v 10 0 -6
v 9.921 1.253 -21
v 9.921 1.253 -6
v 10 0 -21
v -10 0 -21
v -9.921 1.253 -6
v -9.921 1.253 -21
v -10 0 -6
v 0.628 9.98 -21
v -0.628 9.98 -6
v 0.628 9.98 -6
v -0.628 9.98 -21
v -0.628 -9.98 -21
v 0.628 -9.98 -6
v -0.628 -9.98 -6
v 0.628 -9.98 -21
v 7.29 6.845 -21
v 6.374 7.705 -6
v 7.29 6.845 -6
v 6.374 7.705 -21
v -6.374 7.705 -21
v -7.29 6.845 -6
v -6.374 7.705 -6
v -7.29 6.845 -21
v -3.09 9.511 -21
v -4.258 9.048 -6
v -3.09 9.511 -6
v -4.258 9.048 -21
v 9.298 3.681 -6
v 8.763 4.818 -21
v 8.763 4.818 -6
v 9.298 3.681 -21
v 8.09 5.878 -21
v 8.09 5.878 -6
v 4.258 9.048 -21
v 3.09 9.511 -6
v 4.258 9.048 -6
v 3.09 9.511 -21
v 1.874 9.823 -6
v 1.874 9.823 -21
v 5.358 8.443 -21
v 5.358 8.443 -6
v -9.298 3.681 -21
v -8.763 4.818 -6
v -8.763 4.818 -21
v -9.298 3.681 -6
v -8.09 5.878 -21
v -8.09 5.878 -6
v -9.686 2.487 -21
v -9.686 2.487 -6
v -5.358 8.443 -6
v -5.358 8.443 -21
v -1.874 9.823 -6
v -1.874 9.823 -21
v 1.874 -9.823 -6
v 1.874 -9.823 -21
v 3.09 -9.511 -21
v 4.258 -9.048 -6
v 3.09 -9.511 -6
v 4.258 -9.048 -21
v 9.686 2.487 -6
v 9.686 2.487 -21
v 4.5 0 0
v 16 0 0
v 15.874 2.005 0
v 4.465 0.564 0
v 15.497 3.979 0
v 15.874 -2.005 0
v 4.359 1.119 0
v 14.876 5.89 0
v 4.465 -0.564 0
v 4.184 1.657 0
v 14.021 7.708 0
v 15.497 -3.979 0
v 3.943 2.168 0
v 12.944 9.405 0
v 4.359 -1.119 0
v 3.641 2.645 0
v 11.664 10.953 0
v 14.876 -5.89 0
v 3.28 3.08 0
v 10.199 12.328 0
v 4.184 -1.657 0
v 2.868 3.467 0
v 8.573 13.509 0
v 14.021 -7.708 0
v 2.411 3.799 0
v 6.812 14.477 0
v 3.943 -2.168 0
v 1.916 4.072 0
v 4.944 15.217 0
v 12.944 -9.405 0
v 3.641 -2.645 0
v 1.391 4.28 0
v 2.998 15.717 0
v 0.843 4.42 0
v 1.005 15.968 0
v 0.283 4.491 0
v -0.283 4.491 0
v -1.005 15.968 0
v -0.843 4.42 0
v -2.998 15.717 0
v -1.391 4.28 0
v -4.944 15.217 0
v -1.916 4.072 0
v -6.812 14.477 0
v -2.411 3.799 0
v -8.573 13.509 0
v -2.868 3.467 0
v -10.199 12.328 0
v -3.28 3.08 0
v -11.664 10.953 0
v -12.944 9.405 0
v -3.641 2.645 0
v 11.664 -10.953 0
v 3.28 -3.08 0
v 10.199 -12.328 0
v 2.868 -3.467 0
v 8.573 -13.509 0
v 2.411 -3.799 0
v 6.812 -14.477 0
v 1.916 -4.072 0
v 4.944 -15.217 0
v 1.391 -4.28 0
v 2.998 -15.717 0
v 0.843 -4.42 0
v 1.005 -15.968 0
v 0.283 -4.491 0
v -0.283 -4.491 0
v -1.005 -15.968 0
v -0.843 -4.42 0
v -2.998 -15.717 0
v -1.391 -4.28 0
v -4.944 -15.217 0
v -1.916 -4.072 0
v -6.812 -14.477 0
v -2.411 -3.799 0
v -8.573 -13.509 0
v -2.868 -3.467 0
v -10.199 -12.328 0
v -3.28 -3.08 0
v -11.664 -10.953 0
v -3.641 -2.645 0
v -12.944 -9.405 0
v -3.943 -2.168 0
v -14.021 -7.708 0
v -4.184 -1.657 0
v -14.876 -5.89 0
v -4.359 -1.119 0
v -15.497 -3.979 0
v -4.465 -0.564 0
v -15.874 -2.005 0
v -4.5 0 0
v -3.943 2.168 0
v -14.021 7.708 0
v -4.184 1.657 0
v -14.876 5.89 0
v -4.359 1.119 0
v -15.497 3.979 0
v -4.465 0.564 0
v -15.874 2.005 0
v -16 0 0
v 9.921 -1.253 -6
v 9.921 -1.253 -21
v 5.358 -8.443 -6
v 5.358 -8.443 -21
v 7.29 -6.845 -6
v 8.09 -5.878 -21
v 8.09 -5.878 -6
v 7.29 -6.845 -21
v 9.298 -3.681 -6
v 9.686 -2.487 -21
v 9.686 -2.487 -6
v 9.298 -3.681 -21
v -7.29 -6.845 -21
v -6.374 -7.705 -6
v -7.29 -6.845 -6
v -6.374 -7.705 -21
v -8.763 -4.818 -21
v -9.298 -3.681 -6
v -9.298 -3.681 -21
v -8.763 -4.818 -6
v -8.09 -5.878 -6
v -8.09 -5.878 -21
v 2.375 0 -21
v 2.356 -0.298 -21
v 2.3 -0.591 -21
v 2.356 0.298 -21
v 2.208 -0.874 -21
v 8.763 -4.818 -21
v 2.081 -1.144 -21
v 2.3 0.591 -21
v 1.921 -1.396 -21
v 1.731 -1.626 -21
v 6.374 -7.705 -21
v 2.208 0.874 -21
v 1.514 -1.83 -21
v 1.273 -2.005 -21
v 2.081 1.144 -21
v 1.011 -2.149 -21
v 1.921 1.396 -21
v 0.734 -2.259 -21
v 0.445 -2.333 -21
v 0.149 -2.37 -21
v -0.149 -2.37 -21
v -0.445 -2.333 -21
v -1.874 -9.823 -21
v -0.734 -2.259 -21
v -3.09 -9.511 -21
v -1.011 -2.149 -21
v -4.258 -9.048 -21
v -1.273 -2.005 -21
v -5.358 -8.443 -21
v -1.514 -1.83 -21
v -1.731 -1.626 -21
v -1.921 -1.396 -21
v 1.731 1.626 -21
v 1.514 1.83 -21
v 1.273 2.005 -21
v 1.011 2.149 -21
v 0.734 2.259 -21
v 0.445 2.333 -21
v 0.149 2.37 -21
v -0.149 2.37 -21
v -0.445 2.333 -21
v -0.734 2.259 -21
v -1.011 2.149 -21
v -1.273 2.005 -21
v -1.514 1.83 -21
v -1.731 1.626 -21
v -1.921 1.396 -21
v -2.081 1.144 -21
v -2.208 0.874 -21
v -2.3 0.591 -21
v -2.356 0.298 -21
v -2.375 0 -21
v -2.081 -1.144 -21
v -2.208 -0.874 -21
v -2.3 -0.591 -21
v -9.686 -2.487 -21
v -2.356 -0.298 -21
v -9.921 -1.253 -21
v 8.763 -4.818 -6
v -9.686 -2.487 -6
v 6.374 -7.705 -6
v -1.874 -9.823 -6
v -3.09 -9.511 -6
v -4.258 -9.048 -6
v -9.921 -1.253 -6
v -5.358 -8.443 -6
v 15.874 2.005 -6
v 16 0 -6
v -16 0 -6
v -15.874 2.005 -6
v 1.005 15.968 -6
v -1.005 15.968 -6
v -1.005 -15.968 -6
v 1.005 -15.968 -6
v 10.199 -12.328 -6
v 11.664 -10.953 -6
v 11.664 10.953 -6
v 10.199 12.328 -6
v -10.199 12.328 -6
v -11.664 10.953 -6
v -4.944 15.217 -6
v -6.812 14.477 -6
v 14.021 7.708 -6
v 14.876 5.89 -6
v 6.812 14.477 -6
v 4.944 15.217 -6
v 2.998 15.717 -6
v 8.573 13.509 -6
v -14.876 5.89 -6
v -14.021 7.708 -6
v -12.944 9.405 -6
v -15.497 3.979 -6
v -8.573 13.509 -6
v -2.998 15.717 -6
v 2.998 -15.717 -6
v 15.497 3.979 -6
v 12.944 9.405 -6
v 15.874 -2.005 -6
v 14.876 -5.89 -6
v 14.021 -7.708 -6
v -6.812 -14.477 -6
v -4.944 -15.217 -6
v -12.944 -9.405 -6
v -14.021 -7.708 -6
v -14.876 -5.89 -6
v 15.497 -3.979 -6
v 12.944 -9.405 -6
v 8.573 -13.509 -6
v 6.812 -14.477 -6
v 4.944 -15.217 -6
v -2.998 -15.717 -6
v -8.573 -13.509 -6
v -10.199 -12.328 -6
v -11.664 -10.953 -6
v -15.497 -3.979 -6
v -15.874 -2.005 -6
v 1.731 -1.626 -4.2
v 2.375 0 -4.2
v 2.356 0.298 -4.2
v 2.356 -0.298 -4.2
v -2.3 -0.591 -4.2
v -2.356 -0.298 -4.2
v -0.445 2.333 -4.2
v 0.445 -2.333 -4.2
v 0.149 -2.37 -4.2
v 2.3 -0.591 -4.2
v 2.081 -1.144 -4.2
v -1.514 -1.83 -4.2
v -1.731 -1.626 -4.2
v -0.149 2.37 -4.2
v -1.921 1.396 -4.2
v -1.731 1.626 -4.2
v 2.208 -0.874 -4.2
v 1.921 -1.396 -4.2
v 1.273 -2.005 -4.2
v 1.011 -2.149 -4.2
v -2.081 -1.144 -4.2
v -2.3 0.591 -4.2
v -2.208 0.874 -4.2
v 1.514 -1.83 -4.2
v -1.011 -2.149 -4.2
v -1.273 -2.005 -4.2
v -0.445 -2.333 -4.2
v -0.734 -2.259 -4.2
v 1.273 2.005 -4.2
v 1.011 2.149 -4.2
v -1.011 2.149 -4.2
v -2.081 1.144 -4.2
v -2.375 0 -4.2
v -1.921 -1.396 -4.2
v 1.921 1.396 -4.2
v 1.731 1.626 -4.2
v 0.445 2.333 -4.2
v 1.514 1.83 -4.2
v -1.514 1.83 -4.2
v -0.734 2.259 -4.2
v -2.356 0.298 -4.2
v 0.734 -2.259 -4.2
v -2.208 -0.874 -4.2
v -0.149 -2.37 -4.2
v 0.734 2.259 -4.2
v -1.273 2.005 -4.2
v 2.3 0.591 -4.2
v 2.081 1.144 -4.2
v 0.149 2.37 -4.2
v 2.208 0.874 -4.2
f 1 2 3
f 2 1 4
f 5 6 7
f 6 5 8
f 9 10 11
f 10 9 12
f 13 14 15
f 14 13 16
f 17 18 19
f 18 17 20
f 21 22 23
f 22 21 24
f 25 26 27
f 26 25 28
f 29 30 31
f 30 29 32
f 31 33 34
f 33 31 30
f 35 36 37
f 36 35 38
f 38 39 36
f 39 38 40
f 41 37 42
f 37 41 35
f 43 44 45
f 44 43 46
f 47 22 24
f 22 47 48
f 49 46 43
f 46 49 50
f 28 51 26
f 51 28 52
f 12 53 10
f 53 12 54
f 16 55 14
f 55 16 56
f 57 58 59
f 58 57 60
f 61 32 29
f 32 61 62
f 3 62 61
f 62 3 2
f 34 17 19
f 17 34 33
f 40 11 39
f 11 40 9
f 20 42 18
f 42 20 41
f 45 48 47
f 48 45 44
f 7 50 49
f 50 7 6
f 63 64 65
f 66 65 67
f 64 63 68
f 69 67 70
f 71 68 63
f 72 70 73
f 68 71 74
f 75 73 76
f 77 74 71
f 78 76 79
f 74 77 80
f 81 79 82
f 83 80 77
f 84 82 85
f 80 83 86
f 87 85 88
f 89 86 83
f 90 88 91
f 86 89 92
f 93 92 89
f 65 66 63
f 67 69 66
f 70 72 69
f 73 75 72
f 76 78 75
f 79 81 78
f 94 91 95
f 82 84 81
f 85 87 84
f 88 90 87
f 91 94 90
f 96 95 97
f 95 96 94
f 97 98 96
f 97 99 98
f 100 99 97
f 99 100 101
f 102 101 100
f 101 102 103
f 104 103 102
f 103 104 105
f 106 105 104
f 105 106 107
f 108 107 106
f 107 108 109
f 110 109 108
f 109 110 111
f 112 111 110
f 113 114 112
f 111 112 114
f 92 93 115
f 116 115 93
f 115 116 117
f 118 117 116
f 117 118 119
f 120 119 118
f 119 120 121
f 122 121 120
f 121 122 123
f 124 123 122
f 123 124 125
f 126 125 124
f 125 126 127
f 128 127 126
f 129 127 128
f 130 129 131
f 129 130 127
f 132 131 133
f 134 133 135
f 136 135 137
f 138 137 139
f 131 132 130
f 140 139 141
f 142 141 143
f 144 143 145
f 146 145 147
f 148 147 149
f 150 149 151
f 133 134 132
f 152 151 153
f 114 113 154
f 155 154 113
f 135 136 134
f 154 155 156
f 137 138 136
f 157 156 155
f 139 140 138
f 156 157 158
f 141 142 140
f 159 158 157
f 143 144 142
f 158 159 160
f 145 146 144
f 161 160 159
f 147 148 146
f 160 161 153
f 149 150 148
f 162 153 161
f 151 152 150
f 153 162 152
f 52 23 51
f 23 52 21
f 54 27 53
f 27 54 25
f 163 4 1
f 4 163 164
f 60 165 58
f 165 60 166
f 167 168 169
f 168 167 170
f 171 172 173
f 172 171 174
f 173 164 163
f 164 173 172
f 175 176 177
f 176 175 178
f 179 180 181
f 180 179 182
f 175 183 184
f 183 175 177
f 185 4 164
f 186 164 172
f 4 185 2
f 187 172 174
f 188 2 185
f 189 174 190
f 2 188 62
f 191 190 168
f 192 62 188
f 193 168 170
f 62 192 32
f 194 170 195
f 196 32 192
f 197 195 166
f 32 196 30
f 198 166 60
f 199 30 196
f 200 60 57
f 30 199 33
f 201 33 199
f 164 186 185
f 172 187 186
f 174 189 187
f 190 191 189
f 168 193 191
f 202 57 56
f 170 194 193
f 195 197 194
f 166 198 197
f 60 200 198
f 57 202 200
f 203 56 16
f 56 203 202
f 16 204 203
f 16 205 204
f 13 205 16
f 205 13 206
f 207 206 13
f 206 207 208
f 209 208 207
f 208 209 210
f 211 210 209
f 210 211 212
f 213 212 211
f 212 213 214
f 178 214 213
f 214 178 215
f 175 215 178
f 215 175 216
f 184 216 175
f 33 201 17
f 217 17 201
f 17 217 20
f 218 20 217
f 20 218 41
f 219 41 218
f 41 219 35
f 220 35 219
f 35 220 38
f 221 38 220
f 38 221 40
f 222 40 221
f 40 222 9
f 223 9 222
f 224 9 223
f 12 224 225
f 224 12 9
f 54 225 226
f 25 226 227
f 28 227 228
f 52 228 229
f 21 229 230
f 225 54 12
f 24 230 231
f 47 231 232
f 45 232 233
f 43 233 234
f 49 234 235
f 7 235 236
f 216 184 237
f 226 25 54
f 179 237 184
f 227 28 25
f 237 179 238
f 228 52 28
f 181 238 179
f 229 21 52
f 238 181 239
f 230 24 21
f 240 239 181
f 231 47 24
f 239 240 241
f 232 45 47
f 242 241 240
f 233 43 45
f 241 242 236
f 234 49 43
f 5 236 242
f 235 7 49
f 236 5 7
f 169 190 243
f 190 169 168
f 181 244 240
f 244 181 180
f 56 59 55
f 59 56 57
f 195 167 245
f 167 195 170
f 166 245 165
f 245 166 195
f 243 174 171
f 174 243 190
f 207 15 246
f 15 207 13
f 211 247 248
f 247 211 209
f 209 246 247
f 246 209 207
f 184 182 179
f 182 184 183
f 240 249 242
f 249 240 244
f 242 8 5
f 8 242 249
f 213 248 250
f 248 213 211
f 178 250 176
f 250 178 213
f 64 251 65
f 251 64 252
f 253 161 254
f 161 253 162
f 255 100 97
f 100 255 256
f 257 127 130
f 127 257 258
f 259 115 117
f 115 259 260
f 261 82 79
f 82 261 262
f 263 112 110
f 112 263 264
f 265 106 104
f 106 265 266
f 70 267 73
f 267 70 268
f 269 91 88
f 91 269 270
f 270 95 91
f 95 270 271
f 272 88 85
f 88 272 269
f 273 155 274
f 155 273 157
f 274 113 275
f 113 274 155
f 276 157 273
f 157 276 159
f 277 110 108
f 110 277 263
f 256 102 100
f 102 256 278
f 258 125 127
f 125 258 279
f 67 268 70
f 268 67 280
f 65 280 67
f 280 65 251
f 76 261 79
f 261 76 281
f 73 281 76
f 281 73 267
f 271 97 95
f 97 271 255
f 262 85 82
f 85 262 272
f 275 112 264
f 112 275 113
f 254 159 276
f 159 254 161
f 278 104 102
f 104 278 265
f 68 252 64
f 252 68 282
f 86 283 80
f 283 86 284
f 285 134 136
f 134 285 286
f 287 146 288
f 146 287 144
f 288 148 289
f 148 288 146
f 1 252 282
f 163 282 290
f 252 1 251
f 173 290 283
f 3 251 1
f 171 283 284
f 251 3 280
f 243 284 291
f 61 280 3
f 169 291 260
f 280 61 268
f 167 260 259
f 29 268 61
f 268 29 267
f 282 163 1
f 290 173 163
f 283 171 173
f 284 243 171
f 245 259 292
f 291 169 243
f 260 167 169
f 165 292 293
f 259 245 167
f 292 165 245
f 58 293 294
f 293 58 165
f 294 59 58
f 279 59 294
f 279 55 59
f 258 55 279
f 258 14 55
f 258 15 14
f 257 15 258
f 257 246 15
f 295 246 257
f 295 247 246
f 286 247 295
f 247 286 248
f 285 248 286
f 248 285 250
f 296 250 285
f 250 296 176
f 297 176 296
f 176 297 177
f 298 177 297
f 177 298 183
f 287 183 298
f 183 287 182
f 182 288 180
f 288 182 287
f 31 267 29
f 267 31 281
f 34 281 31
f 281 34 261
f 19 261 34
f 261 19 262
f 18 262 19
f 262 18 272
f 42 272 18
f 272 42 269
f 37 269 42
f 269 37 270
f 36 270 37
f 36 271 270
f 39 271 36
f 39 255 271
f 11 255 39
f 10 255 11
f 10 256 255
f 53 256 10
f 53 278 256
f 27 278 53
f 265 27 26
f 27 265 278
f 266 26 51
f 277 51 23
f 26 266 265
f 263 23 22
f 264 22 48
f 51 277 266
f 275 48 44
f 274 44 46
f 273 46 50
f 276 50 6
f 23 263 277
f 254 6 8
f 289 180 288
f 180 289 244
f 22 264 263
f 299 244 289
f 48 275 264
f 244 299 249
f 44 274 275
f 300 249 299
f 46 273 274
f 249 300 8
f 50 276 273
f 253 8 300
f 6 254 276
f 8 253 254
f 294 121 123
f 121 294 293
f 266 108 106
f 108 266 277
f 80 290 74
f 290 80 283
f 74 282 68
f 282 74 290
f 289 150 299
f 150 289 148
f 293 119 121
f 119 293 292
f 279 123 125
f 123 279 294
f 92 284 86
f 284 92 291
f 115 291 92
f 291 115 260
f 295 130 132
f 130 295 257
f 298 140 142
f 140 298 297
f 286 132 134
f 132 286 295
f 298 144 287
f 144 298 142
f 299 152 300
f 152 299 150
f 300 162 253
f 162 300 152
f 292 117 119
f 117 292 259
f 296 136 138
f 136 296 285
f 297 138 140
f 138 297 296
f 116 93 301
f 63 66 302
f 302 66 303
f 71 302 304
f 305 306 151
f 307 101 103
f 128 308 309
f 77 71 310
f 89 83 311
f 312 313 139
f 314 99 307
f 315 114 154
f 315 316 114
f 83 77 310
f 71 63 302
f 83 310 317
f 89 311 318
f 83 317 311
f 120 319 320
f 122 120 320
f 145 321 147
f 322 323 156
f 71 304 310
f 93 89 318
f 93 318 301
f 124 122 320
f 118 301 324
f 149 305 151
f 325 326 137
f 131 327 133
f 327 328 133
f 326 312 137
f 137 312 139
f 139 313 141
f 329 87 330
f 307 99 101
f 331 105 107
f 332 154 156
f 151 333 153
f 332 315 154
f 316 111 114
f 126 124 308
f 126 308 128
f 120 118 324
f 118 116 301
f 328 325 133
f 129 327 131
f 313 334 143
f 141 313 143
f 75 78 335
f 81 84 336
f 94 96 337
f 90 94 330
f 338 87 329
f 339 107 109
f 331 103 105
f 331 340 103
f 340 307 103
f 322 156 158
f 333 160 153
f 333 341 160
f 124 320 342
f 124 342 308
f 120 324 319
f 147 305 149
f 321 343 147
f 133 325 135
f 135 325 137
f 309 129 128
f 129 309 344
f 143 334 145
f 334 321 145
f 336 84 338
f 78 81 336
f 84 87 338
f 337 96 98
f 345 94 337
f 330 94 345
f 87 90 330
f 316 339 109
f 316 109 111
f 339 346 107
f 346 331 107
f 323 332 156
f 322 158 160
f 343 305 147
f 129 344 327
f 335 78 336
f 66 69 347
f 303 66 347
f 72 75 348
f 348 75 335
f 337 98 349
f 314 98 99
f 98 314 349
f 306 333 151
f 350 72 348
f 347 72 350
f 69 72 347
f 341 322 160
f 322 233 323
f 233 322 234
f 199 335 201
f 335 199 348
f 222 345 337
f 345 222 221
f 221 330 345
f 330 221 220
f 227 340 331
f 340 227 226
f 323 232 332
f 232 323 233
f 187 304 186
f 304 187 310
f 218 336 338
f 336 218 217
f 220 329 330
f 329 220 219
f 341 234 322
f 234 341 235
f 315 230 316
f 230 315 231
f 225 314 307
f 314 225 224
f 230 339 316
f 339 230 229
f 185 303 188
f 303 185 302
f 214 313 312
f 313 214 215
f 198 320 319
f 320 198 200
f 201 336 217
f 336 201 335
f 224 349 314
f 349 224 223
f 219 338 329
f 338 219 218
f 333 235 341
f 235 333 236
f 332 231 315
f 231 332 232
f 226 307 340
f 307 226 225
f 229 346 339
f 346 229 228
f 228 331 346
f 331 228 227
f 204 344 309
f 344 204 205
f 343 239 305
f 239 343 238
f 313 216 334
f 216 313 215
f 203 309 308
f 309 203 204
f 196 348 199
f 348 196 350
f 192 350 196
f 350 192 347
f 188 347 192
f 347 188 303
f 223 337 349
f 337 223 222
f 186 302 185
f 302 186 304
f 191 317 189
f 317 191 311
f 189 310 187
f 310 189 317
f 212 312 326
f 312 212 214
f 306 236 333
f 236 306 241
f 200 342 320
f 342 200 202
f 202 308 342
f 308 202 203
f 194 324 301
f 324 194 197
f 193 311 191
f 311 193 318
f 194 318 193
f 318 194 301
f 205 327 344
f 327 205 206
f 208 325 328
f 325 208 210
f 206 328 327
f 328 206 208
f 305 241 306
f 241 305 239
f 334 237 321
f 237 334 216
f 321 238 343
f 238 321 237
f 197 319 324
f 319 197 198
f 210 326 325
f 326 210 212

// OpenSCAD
$fn = 50;


difference() {
	union() {
		translate(v = [0, 0, -21.0000000000]) {
			cylinder(h = 21, r = 10.0000000000);
		}
		translate(v = [0, 0, -6.0000000000]) {
			cylinder(h = 6, r = 16.0000000000);
		}
	}
	union() {
		translate(v = [0, 0, 0]) {
			rotate(a = [0, 0, 0]) {
				difference() {
					union() {
						#translate(v = [0, 0, -21.0000000000]) {
							cylinder(h = 21, r = 2.2500000000);
						}
						#translate(v = [0, 0, -4.2000000000]) {
							cylinder(h = 4.2000000000, r1 = 2.3750000000, r2 = 4.5000000000);
						}
						#translate(v = [0, 0, -21.0000000000]) {
							cylinder(h = 21, r = 2.3750000000);
						}
						#translate(v = [0, 0, -21.0000000000]) {
							cylinder(h = 21, r = 2.2500000000);
						}
					}
					union();
				}
			}
		}
	}
}
